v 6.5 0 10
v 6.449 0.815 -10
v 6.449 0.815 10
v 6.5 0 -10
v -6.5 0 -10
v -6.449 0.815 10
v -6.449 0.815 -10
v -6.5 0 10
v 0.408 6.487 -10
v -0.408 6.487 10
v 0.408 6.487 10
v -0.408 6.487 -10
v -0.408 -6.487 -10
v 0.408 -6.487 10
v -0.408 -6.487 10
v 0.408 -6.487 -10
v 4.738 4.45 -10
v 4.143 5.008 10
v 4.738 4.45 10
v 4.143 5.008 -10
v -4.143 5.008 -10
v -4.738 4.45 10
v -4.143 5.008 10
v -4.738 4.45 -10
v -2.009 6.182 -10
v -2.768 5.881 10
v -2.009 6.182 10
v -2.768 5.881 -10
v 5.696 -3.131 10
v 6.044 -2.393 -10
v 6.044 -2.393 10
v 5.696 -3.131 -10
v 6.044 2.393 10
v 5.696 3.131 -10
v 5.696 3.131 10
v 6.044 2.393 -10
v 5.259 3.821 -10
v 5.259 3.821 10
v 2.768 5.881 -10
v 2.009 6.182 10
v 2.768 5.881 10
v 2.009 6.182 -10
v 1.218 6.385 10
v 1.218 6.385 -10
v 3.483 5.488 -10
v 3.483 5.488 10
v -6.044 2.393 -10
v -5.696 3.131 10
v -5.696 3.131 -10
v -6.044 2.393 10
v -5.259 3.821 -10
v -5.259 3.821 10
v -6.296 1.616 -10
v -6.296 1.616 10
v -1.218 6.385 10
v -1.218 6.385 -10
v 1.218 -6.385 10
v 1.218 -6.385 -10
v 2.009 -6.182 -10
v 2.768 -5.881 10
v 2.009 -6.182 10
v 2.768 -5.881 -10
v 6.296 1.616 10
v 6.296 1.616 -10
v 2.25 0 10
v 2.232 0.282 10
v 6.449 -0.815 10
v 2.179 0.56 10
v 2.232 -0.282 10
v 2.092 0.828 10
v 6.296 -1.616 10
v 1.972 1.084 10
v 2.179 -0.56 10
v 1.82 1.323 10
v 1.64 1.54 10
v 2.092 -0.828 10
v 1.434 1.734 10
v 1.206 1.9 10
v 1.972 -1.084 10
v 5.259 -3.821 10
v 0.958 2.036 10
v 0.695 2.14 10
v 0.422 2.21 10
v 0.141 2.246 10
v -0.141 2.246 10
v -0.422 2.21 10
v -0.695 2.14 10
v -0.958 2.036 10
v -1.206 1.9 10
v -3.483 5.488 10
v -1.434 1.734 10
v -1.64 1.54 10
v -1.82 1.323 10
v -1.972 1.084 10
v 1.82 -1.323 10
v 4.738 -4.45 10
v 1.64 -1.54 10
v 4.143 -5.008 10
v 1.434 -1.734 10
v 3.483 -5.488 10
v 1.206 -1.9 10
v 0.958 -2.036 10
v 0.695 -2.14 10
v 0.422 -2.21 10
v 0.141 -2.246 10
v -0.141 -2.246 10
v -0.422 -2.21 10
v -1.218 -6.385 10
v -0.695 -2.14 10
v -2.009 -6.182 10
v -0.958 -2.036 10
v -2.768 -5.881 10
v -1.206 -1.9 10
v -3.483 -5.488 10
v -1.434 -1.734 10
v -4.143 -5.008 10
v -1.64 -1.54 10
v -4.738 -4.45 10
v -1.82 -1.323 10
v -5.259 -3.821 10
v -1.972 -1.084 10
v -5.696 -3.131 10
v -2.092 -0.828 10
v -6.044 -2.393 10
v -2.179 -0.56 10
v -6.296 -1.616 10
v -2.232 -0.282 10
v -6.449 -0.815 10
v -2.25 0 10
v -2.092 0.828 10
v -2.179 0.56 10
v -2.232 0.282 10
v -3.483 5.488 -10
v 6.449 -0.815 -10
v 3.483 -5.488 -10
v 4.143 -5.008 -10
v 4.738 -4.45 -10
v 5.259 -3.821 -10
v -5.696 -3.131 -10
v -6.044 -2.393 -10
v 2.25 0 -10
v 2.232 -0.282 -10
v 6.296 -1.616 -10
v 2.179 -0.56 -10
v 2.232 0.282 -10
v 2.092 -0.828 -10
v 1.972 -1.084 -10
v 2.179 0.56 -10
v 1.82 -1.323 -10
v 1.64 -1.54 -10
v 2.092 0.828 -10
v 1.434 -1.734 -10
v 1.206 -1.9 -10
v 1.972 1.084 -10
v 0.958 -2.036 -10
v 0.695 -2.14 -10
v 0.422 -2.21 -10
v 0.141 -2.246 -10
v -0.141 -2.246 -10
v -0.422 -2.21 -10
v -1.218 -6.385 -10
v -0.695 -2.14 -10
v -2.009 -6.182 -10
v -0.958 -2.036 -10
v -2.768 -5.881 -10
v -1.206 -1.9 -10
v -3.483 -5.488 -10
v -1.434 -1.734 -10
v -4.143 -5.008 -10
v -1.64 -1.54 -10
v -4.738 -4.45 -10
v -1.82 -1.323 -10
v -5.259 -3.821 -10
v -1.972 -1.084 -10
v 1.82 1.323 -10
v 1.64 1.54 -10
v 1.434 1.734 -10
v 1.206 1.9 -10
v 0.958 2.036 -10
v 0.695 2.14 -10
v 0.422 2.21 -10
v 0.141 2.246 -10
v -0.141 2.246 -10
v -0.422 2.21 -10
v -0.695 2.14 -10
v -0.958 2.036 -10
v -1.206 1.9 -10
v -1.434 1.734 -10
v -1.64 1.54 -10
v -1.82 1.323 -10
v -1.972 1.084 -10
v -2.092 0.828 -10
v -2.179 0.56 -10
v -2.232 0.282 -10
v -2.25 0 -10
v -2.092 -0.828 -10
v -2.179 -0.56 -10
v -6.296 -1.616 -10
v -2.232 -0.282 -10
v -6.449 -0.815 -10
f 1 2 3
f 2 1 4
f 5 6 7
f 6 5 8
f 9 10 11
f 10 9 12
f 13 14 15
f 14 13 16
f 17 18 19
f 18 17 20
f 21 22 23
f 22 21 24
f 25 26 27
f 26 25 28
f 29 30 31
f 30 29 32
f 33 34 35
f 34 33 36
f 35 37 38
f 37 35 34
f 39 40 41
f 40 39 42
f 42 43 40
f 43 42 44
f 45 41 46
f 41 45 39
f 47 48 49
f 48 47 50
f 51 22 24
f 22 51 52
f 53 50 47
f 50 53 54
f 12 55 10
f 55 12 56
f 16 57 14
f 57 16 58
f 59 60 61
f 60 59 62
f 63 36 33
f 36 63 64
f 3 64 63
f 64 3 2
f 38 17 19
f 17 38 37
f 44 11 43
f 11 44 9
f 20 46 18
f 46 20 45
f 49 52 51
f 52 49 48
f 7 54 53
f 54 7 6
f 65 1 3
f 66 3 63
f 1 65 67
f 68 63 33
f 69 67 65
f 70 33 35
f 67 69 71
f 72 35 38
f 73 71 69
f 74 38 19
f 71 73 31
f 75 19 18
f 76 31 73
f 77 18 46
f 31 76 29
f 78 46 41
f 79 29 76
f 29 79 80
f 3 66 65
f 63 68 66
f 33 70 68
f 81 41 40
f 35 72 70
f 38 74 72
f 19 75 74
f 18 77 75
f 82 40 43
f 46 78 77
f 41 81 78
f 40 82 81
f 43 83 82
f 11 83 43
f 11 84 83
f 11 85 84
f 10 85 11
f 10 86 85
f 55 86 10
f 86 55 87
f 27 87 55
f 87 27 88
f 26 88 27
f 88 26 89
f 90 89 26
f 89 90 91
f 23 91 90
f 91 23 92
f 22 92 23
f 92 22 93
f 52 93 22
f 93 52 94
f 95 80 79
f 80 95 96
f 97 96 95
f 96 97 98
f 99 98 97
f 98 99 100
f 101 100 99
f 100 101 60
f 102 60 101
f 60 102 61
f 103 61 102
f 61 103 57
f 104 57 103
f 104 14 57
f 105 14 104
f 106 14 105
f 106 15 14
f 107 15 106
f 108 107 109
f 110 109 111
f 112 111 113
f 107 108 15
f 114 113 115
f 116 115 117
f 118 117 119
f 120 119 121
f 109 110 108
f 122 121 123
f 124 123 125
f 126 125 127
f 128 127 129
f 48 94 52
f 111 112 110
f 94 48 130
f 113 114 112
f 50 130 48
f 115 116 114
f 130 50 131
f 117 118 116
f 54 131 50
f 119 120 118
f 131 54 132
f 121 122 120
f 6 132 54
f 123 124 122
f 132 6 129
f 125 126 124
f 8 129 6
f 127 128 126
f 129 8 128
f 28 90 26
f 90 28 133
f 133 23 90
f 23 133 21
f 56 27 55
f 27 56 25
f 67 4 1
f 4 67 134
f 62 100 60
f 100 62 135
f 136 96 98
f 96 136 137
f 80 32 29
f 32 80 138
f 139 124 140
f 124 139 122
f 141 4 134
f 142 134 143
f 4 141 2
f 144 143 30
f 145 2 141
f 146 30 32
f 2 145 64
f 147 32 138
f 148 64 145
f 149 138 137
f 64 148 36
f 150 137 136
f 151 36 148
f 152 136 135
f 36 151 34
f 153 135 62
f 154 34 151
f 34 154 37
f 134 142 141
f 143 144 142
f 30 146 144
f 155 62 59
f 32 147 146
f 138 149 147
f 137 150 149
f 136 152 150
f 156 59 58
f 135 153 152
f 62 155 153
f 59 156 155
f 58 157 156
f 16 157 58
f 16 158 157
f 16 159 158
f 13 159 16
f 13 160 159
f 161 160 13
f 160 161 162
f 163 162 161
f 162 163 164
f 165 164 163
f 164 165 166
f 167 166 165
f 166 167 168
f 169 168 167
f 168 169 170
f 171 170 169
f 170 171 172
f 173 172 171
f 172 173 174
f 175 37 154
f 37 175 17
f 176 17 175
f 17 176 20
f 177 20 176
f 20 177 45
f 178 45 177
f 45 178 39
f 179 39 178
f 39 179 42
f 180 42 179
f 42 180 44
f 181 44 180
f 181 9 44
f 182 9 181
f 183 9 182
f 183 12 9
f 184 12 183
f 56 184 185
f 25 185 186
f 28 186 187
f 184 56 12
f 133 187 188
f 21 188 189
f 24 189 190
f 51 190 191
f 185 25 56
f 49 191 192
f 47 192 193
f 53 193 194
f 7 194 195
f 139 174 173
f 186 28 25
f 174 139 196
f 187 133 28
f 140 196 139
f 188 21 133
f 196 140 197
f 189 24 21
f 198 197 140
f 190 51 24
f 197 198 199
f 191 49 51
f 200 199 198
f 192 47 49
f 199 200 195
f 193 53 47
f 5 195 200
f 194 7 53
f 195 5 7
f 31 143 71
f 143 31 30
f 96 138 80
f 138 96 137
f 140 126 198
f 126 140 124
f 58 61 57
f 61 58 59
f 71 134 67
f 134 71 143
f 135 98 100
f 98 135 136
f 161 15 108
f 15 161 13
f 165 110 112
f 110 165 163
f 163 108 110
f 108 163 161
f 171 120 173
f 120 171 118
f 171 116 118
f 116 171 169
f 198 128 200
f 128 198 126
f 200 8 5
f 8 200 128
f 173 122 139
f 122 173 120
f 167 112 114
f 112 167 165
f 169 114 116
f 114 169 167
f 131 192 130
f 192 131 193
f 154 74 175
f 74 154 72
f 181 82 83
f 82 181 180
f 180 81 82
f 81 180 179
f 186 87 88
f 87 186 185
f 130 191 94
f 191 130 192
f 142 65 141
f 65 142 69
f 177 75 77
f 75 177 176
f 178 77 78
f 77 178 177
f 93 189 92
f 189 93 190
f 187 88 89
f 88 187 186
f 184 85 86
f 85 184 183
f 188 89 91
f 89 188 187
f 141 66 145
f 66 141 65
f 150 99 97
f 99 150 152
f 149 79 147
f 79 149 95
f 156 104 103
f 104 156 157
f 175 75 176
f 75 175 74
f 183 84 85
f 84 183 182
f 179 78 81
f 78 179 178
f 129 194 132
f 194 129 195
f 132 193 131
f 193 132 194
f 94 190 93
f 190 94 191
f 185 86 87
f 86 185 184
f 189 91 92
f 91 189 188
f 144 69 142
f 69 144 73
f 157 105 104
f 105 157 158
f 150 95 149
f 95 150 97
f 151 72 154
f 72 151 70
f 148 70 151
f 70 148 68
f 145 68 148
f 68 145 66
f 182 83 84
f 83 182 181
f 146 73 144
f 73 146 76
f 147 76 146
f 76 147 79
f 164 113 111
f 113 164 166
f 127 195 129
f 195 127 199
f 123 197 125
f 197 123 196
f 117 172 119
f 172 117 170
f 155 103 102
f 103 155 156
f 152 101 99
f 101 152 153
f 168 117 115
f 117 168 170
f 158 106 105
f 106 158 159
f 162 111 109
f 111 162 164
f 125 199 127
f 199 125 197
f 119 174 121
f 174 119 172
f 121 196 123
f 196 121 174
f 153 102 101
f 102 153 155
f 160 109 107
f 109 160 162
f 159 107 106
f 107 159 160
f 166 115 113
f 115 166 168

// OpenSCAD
$fn = 50;


difference() {
	union() {
		translate(v = [0, 0, -10.0000000000]) {
			cylinder(h = 20, r = 6.5000000000);
		}
	}
	union() {
		translate(v = [0, 0, -100.0000000000]) {
			cylinder(h = 200, r = 2.2500000000);
		}
	}
}
